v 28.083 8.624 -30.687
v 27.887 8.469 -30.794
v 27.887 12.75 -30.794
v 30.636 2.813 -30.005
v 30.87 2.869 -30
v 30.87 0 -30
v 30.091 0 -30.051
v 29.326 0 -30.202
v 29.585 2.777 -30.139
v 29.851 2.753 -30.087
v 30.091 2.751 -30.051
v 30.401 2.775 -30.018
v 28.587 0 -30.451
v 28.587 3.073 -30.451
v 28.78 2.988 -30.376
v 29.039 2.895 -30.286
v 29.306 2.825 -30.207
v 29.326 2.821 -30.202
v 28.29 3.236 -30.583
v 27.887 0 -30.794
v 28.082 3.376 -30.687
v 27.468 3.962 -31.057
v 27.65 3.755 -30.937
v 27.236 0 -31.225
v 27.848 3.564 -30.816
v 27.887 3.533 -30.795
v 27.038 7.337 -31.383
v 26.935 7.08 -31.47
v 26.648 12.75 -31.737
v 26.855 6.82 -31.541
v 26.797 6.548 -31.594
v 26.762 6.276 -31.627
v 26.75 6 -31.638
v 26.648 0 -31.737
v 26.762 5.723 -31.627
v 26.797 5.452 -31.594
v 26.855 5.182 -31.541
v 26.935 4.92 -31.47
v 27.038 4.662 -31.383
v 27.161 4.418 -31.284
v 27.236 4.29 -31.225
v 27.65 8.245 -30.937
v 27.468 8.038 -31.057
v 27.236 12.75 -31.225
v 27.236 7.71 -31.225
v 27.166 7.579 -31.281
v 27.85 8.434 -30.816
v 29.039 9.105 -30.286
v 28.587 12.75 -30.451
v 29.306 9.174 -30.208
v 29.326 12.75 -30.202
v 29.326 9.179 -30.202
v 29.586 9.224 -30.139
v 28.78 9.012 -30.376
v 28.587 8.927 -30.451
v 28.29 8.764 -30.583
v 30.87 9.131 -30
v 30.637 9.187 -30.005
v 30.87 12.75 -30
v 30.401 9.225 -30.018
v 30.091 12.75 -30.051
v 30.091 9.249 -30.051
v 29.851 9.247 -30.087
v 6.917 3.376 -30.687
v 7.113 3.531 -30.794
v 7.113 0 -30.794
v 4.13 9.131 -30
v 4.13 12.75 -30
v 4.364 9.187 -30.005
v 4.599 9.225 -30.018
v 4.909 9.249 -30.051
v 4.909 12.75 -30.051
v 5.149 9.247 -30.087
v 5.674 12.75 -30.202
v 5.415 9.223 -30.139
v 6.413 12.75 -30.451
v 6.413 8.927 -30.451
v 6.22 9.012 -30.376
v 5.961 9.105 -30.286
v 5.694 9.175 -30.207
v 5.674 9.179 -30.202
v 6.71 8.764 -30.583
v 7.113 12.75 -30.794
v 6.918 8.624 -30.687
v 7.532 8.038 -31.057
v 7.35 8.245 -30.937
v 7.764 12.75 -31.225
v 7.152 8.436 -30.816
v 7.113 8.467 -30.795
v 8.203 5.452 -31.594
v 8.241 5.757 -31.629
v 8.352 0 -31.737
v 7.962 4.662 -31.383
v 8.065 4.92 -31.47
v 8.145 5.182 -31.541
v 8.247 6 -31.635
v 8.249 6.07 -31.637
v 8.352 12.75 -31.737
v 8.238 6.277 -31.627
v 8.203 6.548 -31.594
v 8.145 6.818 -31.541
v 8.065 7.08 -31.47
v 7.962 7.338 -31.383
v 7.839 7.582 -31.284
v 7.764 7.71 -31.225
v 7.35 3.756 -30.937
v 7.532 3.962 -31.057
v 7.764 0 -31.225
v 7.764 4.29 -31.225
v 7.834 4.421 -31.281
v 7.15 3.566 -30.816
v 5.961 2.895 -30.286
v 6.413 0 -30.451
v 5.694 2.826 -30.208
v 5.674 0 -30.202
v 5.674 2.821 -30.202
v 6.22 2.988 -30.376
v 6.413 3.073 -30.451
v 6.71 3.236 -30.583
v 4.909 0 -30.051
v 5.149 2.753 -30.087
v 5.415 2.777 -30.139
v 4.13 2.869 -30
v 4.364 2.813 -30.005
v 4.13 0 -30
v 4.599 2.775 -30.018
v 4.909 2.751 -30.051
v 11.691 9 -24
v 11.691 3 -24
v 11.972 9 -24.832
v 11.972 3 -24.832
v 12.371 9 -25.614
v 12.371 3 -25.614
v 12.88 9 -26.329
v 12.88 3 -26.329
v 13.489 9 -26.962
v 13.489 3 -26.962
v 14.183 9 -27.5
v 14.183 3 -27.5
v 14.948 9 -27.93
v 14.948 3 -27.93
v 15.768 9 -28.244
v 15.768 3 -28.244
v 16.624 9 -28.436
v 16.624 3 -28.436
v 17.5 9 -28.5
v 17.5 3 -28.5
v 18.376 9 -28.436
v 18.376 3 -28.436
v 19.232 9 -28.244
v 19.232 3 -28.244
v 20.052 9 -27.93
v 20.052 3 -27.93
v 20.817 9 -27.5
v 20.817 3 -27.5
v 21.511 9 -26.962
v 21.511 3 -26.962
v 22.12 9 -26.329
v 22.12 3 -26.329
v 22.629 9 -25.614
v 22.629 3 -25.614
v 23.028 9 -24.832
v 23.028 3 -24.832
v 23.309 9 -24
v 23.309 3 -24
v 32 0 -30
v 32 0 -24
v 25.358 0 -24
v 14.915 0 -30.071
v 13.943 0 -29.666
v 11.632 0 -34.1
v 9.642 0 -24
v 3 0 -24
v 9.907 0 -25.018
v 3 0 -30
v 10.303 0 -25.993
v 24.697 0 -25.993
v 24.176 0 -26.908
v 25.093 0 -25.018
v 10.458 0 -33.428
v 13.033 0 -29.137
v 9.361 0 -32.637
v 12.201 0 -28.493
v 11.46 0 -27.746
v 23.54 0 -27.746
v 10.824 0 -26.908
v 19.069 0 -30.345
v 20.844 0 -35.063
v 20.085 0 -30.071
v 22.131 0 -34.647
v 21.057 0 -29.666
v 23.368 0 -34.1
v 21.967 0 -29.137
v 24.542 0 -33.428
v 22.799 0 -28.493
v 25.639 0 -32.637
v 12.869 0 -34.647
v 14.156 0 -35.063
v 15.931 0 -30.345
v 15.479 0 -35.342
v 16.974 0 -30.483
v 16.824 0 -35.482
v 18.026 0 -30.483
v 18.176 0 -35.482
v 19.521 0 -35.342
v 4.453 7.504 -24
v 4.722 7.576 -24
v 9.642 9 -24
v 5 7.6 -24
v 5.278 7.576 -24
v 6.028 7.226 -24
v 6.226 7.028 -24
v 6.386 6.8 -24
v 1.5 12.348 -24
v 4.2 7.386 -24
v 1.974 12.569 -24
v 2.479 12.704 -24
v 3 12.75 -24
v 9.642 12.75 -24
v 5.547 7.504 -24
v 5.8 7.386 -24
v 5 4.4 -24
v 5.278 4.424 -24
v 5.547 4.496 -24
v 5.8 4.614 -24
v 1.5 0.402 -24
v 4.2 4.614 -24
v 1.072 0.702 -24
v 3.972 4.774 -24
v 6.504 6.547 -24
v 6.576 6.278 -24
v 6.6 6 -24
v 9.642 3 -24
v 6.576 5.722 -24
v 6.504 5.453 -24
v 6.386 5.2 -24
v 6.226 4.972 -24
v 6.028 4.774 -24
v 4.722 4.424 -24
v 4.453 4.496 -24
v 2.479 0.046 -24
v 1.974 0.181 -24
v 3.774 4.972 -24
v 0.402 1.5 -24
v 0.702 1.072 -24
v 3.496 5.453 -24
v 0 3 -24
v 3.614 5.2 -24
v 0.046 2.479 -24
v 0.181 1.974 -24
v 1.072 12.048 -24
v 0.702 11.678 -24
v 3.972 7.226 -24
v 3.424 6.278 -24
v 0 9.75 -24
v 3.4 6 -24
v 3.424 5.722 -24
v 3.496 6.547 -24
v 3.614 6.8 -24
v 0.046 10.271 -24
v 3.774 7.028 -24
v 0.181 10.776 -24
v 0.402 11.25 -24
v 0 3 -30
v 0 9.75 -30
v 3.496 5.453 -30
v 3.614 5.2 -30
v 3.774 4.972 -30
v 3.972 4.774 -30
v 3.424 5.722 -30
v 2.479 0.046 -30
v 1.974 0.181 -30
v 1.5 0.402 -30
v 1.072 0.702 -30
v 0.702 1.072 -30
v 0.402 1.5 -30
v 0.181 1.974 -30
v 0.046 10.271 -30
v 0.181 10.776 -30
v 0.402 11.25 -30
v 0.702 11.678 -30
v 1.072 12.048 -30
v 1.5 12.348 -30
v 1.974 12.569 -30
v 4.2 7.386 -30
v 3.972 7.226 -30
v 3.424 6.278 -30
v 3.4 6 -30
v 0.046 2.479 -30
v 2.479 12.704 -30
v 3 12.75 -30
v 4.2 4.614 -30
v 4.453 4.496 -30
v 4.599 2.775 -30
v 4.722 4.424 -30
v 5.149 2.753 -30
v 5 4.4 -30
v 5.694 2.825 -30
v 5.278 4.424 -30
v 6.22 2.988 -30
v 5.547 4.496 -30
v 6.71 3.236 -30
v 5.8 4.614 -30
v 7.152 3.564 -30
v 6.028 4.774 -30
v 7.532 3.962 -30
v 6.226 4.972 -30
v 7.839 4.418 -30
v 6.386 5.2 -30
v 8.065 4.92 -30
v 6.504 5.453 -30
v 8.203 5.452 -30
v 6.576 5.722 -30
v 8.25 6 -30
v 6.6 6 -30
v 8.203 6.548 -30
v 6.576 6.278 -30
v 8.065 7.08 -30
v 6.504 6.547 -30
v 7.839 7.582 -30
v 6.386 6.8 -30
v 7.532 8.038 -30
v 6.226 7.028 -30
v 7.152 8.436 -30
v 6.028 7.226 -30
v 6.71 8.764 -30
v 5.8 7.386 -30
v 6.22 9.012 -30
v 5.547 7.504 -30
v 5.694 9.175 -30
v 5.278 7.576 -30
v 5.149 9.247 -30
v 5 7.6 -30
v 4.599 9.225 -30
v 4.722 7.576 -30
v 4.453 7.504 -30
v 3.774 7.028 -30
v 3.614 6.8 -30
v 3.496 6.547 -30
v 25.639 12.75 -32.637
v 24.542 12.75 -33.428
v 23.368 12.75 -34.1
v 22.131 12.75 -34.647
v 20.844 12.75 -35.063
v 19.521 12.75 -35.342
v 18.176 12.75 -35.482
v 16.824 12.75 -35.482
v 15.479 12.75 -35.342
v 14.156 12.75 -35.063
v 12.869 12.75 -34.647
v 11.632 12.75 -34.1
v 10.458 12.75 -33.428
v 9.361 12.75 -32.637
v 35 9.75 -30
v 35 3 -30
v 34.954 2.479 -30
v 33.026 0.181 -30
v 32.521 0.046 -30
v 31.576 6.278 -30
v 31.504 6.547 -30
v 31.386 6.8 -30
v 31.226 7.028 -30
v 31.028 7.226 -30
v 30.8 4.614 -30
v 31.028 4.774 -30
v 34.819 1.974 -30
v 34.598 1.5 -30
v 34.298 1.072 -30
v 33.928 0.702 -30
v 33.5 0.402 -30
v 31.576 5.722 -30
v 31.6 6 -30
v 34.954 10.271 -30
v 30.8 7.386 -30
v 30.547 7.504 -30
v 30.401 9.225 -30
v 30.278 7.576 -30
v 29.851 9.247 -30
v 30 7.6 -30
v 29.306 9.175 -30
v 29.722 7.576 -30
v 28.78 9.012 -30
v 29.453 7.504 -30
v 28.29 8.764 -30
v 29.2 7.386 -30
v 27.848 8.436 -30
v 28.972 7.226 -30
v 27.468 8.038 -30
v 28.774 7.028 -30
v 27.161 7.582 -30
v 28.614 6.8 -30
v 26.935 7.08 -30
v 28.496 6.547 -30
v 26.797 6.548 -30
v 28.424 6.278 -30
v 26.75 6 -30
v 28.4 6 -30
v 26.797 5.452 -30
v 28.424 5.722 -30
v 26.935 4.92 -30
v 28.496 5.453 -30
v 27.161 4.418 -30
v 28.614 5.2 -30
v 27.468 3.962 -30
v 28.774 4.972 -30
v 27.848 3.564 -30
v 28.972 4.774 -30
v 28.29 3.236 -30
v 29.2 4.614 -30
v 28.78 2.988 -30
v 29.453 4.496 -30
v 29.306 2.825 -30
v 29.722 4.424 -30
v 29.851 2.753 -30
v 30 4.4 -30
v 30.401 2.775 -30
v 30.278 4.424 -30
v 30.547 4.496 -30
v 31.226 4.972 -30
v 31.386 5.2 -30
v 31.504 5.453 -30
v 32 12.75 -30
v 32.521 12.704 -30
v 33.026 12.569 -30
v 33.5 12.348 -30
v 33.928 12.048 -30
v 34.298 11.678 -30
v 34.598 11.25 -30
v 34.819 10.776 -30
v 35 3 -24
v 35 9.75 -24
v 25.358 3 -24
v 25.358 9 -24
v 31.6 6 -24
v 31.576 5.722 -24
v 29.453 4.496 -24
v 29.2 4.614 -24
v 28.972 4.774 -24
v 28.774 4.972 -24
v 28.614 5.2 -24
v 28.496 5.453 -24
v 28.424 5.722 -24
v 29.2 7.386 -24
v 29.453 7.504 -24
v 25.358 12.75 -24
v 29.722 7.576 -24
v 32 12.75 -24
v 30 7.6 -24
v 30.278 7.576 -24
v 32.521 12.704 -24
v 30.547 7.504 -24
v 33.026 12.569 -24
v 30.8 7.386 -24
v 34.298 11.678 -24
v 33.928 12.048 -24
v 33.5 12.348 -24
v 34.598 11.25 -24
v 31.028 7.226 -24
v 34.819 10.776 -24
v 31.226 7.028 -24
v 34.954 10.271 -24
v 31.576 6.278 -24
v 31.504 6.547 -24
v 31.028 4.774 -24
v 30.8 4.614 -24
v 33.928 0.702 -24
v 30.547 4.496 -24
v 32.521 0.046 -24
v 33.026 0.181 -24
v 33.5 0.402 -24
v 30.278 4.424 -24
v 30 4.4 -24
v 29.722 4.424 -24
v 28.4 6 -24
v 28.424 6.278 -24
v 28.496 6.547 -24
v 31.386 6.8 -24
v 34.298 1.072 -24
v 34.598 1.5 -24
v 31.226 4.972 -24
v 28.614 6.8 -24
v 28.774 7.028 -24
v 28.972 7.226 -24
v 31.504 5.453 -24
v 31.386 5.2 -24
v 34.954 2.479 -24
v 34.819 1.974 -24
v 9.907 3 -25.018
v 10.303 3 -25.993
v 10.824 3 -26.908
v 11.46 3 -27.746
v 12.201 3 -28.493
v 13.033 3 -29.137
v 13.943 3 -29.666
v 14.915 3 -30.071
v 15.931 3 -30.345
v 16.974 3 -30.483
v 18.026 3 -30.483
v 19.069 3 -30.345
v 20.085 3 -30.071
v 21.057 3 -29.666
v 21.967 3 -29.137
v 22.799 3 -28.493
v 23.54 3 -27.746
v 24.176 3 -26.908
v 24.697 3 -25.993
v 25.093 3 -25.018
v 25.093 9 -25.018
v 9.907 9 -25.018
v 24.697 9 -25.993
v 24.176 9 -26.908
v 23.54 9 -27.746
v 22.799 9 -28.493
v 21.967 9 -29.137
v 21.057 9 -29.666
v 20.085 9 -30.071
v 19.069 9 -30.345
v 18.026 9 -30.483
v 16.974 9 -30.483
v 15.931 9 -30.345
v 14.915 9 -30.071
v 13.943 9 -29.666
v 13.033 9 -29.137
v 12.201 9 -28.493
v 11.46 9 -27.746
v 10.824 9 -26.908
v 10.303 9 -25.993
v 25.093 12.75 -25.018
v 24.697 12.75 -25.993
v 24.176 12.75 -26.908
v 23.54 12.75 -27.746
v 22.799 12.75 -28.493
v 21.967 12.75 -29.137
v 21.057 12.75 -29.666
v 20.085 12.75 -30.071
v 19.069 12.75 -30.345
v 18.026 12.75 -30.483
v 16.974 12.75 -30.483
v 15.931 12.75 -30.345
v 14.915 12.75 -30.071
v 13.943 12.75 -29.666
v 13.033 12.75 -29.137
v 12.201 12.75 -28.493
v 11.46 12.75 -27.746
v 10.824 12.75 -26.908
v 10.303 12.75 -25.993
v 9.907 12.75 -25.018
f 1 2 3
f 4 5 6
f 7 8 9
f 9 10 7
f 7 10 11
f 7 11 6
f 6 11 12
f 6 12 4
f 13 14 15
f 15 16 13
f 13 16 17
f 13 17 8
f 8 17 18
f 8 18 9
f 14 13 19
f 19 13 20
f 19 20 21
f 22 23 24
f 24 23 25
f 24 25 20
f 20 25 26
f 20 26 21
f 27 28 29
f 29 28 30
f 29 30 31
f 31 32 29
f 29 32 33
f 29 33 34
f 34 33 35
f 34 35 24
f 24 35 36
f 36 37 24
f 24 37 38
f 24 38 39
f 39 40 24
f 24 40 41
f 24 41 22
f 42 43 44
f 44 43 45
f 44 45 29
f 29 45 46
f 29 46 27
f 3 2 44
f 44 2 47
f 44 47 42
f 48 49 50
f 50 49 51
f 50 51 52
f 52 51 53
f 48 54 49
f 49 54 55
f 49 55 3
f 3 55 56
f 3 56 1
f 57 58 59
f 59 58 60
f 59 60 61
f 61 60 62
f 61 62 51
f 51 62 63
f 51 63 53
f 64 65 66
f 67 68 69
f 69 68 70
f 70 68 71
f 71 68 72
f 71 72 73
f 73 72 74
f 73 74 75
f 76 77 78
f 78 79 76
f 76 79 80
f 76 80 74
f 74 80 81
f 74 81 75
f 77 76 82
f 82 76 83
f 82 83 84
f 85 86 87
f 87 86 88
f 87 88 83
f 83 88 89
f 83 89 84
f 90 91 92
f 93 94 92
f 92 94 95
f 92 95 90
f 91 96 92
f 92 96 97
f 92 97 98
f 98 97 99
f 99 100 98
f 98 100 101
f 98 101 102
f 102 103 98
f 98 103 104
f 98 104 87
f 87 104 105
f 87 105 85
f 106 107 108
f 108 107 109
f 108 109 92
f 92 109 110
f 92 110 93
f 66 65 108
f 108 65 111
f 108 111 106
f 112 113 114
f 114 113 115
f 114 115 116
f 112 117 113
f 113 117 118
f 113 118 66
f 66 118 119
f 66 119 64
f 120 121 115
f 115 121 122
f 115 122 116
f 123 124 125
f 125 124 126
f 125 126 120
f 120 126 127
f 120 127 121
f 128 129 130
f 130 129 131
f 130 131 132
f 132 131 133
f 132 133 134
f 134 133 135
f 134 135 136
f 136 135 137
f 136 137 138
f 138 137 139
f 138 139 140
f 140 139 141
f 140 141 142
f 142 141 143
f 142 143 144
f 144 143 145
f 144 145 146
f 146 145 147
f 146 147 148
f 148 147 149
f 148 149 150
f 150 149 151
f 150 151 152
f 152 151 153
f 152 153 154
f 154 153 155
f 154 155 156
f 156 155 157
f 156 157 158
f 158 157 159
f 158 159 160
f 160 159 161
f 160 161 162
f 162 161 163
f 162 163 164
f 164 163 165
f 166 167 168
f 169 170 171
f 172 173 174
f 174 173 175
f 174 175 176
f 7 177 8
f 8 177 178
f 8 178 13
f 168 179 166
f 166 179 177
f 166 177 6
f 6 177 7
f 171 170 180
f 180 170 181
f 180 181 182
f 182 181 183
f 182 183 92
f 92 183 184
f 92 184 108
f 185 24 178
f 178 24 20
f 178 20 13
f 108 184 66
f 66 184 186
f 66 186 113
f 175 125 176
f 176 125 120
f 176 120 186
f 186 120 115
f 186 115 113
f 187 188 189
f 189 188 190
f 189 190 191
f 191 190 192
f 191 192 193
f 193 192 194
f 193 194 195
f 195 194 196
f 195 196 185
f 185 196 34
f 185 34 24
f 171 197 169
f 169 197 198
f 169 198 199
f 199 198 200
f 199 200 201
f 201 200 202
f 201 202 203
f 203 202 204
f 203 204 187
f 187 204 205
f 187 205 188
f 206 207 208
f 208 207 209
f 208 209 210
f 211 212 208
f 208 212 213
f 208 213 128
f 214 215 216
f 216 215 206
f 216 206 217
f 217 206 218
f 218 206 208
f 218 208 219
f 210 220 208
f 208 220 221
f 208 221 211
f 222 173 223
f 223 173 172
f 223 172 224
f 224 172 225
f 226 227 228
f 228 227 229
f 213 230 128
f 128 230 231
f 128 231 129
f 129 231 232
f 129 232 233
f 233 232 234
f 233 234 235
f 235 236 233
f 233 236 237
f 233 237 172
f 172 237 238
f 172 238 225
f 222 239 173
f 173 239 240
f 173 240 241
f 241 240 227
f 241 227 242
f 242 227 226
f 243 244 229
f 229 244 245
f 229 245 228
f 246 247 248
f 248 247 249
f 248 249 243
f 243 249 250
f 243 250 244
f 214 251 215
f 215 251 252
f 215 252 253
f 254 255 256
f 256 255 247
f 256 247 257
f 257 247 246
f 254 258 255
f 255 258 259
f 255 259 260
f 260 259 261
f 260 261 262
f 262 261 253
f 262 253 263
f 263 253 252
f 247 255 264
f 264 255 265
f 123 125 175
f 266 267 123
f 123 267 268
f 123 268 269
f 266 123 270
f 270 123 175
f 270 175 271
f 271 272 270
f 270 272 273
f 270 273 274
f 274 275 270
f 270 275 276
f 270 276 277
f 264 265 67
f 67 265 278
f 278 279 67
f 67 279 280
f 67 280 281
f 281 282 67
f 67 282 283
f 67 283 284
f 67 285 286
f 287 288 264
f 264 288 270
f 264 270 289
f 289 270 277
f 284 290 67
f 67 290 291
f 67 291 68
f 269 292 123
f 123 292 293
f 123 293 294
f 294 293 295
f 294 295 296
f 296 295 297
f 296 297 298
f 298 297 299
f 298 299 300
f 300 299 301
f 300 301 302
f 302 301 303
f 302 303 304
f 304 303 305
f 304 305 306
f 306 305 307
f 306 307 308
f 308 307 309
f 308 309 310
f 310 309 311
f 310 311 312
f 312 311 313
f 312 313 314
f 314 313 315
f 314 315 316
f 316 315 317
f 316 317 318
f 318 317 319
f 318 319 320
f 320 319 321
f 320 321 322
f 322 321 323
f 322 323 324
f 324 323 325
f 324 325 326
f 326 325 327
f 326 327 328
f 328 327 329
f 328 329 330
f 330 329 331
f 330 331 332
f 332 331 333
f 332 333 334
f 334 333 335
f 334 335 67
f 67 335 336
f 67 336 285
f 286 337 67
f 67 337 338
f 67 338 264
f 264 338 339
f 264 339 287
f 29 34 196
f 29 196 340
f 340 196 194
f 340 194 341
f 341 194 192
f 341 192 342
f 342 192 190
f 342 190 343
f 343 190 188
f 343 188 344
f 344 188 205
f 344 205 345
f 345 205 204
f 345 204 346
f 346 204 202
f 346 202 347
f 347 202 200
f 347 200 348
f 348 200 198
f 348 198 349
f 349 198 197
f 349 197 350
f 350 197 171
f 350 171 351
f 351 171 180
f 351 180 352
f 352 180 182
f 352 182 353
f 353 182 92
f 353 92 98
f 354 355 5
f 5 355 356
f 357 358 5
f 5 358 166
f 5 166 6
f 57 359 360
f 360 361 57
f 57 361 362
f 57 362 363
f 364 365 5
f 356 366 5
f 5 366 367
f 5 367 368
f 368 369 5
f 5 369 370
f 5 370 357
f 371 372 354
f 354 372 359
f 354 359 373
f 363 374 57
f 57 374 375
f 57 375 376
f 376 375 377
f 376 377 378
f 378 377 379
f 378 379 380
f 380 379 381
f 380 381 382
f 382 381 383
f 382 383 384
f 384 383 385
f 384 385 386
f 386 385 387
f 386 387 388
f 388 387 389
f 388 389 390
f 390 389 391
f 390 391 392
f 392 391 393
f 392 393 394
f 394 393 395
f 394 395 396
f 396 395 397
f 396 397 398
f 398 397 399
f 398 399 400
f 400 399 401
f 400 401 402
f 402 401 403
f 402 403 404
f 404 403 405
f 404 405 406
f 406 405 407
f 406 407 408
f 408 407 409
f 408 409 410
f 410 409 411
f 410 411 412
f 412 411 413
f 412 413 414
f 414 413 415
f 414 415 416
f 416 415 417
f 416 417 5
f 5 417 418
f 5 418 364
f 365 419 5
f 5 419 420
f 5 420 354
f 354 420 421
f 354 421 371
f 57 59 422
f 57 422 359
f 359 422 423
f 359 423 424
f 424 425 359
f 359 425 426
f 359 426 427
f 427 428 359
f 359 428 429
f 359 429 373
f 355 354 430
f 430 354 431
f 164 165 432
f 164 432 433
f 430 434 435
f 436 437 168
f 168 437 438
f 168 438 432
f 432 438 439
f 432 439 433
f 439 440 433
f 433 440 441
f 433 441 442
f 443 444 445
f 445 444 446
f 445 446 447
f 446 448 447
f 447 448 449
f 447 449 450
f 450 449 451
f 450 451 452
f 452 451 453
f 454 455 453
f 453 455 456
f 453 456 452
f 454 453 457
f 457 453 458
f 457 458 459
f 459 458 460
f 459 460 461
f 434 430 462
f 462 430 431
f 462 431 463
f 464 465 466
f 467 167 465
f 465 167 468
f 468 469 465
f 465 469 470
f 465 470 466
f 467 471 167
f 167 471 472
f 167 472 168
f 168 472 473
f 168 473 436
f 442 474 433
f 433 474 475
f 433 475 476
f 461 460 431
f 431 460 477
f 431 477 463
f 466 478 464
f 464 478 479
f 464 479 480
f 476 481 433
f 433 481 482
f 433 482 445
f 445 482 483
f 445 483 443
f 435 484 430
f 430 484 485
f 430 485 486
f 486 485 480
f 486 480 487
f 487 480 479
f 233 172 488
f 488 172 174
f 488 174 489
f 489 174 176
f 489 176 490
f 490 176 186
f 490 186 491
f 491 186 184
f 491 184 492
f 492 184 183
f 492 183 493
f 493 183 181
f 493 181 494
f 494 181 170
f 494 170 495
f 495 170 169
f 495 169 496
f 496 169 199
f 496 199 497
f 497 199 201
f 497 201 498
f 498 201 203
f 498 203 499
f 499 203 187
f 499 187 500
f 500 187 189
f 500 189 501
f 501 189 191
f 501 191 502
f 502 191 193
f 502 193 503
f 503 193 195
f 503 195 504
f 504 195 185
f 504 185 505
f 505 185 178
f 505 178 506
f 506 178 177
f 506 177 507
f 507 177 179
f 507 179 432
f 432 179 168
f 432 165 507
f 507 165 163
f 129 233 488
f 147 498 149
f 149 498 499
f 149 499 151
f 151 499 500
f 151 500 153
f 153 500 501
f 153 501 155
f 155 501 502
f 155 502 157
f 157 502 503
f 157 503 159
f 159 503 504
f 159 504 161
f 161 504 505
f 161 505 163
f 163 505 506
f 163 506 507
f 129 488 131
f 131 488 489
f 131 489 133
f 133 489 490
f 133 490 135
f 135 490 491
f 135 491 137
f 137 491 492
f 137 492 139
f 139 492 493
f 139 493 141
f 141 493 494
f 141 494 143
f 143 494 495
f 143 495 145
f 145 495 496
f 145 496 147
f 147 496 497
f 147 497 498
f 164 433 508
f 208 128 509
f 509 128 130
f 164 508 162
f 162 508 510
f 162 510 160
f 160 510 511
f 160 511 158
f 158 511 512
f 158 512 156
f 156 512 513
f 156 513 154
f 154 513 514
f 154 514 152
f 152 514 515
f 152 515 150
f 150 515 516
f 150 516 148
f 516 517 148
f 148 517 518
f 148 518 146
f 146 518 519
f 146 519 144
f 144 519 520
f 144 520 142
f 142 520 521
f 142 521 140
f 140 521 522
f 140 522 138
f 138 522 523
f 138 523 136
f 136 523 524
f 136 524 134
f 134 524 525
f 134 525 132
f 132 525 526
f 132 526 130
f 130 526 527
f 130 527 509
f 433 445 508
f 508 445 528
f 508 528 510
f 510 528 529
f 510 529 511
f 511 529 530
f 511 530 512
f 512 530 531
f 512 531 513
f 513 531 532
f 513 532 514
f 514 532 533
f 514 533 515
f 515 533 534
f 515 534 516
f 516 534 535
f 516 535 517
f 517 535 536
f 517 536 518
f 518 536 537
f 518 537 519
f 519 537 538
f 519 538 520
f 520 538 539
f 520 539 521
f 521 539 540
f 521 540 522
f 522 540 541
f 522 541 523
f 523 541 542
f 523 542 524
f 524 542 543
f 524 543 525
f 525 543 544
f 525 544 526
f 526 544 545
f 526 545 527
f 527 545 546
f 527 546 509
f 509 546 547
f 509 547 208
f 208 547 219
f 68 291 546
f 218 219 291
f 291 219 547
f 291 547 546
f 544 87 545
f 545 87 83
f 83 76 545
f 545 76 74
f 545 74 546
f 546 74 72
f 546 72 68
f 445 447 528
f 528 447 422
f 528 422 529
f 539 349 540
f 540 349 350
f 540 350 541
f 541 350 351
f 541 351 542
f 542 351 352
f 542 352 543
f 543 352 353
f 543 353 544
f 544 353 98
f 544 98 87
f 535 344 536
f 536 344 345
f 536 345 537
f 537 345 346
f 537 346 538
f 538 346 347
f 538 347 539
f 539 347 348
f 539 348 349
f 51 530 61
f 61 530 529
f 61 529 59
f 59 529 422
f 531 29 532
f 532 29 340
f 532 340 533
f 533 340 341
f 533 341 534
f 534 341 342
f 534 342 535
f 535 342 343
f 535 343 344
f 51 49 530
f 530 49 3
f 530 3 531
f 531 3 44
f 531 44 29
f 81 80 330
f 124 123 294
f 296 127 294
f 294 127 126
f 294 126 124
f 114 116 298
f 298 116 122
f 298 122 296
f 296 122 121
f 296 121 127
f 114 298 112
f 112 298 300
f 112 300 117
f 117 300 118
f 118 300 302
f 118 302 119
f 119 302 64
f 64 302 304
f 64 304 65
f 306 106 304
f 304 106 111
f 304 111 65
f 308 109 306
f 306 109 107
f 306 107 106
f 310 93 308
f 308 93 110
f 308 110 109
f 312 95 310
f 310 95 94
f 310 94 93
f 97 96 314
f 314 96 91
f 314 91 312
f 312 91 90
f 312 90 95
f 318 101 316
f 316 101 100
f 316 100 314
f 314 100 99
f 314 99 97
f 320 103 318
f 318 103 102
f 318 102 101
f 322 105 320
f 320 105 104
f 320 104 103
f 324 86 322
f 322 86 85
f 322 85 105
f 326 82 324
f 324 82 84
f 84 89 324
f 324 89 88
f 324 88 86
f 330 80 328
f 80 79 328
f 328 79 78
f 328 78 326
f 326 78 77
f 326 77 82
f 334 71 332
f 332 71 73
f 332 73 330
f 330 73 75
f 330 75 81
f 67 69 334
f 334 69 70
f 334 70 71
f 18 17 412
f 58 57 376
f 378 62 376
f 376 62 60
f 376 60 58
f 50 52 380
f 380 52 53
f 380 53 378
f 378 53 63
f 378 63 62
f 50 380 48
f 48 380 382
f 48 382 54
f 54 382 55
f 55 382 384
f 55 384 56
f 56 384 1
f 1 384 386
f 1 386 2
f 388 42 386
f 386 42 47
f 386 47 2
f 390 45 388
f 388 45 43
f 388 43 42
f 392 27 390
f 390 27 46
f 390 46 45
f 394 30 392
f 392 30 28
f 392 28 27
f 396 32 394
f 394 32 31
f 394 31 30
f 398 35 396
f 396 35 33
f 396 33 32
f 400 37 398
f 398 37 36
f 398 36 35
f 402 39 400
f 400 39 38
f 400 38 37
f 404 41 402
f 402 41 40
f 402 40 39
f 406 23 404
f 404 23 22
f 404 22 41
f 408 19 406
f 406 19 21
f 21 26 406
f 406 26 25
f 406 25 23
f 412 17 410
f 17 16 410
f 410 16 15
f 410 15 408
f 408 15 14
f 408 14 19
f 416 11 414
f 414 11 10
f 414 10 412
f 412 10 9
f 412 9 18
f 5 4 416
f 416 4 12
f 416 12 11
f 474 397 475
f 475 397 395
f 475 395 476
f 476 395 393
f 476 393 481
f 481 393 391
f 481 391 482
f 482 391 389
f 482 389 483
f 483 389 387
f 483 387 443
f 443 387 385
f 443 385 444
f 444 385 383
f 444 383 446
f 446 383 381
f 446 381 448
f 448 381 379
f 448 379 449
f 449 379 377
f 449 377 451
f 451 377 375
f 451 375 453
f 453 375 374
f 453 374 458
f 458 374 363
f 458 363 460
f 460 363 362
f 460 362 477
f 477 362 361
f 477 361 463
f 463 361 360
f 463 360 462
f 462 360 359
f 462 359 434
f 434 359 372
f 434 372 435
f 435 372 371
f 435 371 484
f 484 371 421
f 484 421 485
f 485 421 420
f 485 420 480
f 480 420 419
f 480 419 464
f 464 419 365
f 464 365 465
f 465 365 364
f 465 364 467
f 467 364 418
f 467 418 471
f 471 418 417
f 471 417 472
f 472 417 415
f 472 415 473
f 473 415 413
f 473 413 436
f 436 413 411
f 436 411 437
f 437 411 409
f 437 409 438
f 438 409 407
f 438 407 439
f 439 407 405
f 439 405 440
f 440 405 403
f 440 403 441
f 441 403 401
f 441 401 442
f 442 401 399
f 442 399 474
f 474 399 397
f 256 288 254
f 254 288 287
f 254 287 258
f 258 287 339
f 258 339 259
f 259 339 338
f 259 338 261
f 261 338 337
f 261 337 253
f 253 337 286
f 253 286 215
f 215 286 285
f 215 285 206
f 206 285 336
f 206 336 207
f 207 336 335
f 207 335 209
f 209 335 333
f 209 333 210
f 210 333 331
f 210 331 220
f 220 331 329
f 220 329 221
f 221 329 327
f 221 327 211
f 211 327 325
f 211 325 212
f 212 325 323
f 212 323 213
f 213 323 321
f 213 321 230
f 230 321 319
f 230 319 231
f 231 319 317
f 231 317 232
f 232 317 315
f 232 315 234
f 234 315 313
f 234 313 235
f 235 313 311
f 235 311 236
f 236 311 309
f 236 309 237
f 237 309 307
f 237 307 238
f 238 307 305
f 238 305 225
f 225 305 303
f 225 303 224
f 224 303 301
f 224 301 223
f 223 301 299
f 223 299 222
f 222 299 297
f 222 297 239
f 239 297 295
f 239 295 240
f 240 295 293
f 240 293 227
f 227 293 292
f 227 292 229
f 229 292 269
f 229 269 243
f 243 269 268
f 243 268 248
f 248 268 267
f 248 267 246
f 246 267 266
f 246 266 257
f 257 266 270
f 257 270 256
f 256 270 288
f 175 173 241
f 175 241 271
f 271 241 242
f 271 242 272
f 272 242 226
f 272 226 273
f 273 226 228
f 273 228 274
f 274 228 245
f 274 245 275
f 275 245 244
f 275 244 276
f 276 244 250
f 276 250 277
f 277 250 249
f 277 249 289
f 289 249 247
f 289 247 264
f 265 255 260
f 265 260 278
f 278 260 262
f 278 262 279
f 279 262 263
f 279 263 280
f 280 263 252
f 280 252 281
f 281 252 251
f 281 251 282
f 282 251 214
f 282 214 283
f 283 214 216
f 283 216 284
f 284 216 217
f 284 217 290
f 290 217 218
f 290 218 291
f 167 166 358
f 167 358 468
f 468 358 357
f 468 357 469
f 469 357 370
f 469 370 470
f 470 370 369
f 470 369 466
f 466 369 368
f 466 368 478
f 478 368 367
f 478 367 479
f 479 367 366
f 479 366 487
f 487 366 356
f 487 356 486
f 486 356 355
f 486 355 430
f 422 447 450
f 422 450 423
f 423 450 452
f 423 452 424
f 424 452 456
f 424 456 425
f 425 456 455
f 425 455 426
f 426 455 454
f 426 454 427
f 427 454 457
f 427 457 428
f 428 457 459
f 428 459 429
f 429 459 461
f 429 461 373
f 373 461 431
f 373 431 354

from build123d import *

# Parameters (mm, degrees)
BOSS_EXTRUDE1_DEPTH = 22
BOSS_EXTRUDE2_DEPTH = 22
SKETCH5_R           = 8
CUT_EXTRUDE5_DEPTH  = 3
CUT_EXTRUDE6_START  = -13
SKETCH6_R           = 8
CUT_EXTRUDE6_DEPTH  = 13
SKETCH8_R           = 2.55
CUT_EXTRUDE7_DEPTH  = 7
SKETCH7_W           = 44
SKETCH7_H           = 29.325472949
CUT_EXTRUDE8_DEPTH  = 9.25
FILLET1_R           = 6
SKETCH10_R          = 3.25
CUT_EXTRUDE9_DEPTH  = 58.619441164
SKETCH11_R          = 1.6
CUT_EXTRUDE10_DEPTH = 6
FILLET3_R           = 3


with BuildPart() as part:
    # Sketch2 → Boss-Extrude1 (new body)
    with BuildSketch(Plane(origin=(0, 0, 0), x_dir=(1, 0, 0), z_dir=(0, 1, 0))):
        with BuildLine():
            Line((0, 0), (44, 0))
            Line((44, 0), (44, 22.5))
            Line((44, 22.5), (23.5, 22.5))
            ThreePointArc((23.5, 22.5), (17.5, 16.5), (11.5, 22.5))
            Line((11.5, 22.5), (0, 22.5))
            Line((0, 22.5), (0, 0))
        make_face()
    extrude(amount=BOSS_EXTRUDE1_DEPTH)


with BuildPart() as body_2:
    # Sketch9 → Boss-Extrude2 (new body)
    with BuildSketch(Plane.XZ):
        with BuildLine():
            Line((11.690524981, -24), (0, -24))
            Line((0, -24), (0, -30))
            Line((0, -30), (6.881619709, -30))
            ThreePointArc((6.881619709, -30), (17.5, -35.5), (28.118380291, -30))
            Line((28.118380291, -30), (35, -30))
            Line((35, -30), (35, -24))
            Line((35, -24), (23.309475019, -24))
            ThreePointArc((23.309475019, -24), (17.5, -28.5), (11.690524981, -24))
        make_face()
    extrude(amount=-BOSS_EXTRUDE2_DEPTH)


with BuildPart() as cut_extrude5_tool:
    # Sketch5 → Cut-Extrude5 (new body)
    with BuildSketch(Plane.XZ):
        with Locations((17.5, -22.5)):
            Circle(SKETCH5_R)
    extrude(amount=-CUT_EXTRUDE5_DEPTH)


with BuildPart() as part_1:
    add(part.part)

    # Cut-Extrude5: cut by cut_extrude5_tool
    add(cut_extrude5_tool.part, mode=Mode.SUBTRACT)


with BuildPart() as body_2_1:
    add(body_2.part)

    # Cut-Extrude5: cut by cut_extrude5_tool
    add(cut_extrude5_tool.part, mode=Mode.SUBTRACT)


with BuildPart() as cut_extrude6_tool:
    # Sketch6 → Cut-Extrude6 (new body)
    with BuildSketch(Plane(origin=(0, 22, 0), x_dir=(1, 0, 0), z_dir=(0, 1, 0)).offset(CUT_EXTRUDE6_START)):
        with Locations((17.5, 22.5)):
            Circle(SKETCH6_R)
    extrude(amount=CUT_EXTRUDE6_DEPTH)


with BuildPart() as part_2:
    add(part_1.part)

    # Cut-Extrude6: cut by cut_extrude6_tool
    add(cut_extrude6_tool.part, mode=Mode.SUBTRACT)

    # Sketch8 → Cut-Extrude7 (cut)
    with BuildSketch(Plane(origin=(0, 0, -22.5), x_dir=(-1, 0, 0), z_dir=(0, 0, -1))):
        with Locations((-5, 6)):
            Circle(SKETCH8_R)
        with Locations(Location((-30, 6, 0), (0, 0, 180))):
            Circle(SKETCH8_R)
    extrude(amount=-CUT_EXTRUDE7_DEPTH, mode=Mode.SUBTRACT)


with BuildPart() as body_2_2:
    add(body_2_1.part)

    # Cut-Extrude6: cut by cut_extrude6_tool
    add(cut_extrude6_tool.part, mode=Mode.SUBTRACT)


with BuildPart() as cut_extrude8_tool:
    # Sketch7 → Cut-Extrude8 (new body)
    with BuildSketch(Plane.XZ.offset(-22)):
        with Locations((22, -23.662736475)):
            Rectangle(SKETCH7_W, SKETCH7_H)
    extrude(amount=CUT_EXTRUDE8_DEPTH)


with BuildPart() as part_3:
    add(part_2.part)

    # Cut-Extrude8: cut by cut_extrude8_tool
    add(cut_extrude8_tool.part, mode=Mode.SUBTRACT)


with BuildPart() as body_2_3:
    add(body_2_2.part)

    # Cut-Extrude8: cut by cut_extrude8_tool
    add(cut_extrude8_tool.part, mode=Mode.SUBTRACT)

    # Fillet1
    fillet1_edges = [body_2_3.edges().sort_by_distance(p)[0] for p in [
        (28.118380291, 6.375, -30),
        (6.881619709, 6.375, -30),
    ]]
    fillet(fillet1_edges, radius=FILLET1_R)

    # Sketch10 → Cut-Extrude9 (cut, through all)
    with BuildSketch(Plane(origin=(0, 0, -30), x_dir=(-1, 0, 0), z_dir=(0, 0, -1))):
        with Locations((-5, 6)):
            Circle(SKETCH10_R)
        with Locations((-30, 6)):
            Circle(SKETCH10_R)
    extrude(amount=CUT_EXTRUDE9_DEPTH, mode=Mode.SUBTRACT)

    # Sketch11 → Cut-Extrude10 (cut)
    with BuildSketch(Plane(origin=(0, 0, -30), x_dir=(-1, 0, 0), z_dir=(0, 0, -1))):
        with Locations((-5, 6)):
            Circle(SKETCH11_R)
        with Locations((-30, 6)):
            Circle(SKETCH11_R)
    extrude(amount=-CUT_EXTRUDE10_DEPTH, mode=Mode.SUBTRACT)

    # Fillet3
    fillet3_edges = [body_2_3.edges().sort_by_distance(p)[0] for p in [
        (0, 0, -27),
        (35, 0, -27),
        (35, 12.75, -27),
        (0, 12.75, -27),
    ]]
    fillet(fillet3_edges, radius=FILLET3_R)


solid = body_2_3.part
